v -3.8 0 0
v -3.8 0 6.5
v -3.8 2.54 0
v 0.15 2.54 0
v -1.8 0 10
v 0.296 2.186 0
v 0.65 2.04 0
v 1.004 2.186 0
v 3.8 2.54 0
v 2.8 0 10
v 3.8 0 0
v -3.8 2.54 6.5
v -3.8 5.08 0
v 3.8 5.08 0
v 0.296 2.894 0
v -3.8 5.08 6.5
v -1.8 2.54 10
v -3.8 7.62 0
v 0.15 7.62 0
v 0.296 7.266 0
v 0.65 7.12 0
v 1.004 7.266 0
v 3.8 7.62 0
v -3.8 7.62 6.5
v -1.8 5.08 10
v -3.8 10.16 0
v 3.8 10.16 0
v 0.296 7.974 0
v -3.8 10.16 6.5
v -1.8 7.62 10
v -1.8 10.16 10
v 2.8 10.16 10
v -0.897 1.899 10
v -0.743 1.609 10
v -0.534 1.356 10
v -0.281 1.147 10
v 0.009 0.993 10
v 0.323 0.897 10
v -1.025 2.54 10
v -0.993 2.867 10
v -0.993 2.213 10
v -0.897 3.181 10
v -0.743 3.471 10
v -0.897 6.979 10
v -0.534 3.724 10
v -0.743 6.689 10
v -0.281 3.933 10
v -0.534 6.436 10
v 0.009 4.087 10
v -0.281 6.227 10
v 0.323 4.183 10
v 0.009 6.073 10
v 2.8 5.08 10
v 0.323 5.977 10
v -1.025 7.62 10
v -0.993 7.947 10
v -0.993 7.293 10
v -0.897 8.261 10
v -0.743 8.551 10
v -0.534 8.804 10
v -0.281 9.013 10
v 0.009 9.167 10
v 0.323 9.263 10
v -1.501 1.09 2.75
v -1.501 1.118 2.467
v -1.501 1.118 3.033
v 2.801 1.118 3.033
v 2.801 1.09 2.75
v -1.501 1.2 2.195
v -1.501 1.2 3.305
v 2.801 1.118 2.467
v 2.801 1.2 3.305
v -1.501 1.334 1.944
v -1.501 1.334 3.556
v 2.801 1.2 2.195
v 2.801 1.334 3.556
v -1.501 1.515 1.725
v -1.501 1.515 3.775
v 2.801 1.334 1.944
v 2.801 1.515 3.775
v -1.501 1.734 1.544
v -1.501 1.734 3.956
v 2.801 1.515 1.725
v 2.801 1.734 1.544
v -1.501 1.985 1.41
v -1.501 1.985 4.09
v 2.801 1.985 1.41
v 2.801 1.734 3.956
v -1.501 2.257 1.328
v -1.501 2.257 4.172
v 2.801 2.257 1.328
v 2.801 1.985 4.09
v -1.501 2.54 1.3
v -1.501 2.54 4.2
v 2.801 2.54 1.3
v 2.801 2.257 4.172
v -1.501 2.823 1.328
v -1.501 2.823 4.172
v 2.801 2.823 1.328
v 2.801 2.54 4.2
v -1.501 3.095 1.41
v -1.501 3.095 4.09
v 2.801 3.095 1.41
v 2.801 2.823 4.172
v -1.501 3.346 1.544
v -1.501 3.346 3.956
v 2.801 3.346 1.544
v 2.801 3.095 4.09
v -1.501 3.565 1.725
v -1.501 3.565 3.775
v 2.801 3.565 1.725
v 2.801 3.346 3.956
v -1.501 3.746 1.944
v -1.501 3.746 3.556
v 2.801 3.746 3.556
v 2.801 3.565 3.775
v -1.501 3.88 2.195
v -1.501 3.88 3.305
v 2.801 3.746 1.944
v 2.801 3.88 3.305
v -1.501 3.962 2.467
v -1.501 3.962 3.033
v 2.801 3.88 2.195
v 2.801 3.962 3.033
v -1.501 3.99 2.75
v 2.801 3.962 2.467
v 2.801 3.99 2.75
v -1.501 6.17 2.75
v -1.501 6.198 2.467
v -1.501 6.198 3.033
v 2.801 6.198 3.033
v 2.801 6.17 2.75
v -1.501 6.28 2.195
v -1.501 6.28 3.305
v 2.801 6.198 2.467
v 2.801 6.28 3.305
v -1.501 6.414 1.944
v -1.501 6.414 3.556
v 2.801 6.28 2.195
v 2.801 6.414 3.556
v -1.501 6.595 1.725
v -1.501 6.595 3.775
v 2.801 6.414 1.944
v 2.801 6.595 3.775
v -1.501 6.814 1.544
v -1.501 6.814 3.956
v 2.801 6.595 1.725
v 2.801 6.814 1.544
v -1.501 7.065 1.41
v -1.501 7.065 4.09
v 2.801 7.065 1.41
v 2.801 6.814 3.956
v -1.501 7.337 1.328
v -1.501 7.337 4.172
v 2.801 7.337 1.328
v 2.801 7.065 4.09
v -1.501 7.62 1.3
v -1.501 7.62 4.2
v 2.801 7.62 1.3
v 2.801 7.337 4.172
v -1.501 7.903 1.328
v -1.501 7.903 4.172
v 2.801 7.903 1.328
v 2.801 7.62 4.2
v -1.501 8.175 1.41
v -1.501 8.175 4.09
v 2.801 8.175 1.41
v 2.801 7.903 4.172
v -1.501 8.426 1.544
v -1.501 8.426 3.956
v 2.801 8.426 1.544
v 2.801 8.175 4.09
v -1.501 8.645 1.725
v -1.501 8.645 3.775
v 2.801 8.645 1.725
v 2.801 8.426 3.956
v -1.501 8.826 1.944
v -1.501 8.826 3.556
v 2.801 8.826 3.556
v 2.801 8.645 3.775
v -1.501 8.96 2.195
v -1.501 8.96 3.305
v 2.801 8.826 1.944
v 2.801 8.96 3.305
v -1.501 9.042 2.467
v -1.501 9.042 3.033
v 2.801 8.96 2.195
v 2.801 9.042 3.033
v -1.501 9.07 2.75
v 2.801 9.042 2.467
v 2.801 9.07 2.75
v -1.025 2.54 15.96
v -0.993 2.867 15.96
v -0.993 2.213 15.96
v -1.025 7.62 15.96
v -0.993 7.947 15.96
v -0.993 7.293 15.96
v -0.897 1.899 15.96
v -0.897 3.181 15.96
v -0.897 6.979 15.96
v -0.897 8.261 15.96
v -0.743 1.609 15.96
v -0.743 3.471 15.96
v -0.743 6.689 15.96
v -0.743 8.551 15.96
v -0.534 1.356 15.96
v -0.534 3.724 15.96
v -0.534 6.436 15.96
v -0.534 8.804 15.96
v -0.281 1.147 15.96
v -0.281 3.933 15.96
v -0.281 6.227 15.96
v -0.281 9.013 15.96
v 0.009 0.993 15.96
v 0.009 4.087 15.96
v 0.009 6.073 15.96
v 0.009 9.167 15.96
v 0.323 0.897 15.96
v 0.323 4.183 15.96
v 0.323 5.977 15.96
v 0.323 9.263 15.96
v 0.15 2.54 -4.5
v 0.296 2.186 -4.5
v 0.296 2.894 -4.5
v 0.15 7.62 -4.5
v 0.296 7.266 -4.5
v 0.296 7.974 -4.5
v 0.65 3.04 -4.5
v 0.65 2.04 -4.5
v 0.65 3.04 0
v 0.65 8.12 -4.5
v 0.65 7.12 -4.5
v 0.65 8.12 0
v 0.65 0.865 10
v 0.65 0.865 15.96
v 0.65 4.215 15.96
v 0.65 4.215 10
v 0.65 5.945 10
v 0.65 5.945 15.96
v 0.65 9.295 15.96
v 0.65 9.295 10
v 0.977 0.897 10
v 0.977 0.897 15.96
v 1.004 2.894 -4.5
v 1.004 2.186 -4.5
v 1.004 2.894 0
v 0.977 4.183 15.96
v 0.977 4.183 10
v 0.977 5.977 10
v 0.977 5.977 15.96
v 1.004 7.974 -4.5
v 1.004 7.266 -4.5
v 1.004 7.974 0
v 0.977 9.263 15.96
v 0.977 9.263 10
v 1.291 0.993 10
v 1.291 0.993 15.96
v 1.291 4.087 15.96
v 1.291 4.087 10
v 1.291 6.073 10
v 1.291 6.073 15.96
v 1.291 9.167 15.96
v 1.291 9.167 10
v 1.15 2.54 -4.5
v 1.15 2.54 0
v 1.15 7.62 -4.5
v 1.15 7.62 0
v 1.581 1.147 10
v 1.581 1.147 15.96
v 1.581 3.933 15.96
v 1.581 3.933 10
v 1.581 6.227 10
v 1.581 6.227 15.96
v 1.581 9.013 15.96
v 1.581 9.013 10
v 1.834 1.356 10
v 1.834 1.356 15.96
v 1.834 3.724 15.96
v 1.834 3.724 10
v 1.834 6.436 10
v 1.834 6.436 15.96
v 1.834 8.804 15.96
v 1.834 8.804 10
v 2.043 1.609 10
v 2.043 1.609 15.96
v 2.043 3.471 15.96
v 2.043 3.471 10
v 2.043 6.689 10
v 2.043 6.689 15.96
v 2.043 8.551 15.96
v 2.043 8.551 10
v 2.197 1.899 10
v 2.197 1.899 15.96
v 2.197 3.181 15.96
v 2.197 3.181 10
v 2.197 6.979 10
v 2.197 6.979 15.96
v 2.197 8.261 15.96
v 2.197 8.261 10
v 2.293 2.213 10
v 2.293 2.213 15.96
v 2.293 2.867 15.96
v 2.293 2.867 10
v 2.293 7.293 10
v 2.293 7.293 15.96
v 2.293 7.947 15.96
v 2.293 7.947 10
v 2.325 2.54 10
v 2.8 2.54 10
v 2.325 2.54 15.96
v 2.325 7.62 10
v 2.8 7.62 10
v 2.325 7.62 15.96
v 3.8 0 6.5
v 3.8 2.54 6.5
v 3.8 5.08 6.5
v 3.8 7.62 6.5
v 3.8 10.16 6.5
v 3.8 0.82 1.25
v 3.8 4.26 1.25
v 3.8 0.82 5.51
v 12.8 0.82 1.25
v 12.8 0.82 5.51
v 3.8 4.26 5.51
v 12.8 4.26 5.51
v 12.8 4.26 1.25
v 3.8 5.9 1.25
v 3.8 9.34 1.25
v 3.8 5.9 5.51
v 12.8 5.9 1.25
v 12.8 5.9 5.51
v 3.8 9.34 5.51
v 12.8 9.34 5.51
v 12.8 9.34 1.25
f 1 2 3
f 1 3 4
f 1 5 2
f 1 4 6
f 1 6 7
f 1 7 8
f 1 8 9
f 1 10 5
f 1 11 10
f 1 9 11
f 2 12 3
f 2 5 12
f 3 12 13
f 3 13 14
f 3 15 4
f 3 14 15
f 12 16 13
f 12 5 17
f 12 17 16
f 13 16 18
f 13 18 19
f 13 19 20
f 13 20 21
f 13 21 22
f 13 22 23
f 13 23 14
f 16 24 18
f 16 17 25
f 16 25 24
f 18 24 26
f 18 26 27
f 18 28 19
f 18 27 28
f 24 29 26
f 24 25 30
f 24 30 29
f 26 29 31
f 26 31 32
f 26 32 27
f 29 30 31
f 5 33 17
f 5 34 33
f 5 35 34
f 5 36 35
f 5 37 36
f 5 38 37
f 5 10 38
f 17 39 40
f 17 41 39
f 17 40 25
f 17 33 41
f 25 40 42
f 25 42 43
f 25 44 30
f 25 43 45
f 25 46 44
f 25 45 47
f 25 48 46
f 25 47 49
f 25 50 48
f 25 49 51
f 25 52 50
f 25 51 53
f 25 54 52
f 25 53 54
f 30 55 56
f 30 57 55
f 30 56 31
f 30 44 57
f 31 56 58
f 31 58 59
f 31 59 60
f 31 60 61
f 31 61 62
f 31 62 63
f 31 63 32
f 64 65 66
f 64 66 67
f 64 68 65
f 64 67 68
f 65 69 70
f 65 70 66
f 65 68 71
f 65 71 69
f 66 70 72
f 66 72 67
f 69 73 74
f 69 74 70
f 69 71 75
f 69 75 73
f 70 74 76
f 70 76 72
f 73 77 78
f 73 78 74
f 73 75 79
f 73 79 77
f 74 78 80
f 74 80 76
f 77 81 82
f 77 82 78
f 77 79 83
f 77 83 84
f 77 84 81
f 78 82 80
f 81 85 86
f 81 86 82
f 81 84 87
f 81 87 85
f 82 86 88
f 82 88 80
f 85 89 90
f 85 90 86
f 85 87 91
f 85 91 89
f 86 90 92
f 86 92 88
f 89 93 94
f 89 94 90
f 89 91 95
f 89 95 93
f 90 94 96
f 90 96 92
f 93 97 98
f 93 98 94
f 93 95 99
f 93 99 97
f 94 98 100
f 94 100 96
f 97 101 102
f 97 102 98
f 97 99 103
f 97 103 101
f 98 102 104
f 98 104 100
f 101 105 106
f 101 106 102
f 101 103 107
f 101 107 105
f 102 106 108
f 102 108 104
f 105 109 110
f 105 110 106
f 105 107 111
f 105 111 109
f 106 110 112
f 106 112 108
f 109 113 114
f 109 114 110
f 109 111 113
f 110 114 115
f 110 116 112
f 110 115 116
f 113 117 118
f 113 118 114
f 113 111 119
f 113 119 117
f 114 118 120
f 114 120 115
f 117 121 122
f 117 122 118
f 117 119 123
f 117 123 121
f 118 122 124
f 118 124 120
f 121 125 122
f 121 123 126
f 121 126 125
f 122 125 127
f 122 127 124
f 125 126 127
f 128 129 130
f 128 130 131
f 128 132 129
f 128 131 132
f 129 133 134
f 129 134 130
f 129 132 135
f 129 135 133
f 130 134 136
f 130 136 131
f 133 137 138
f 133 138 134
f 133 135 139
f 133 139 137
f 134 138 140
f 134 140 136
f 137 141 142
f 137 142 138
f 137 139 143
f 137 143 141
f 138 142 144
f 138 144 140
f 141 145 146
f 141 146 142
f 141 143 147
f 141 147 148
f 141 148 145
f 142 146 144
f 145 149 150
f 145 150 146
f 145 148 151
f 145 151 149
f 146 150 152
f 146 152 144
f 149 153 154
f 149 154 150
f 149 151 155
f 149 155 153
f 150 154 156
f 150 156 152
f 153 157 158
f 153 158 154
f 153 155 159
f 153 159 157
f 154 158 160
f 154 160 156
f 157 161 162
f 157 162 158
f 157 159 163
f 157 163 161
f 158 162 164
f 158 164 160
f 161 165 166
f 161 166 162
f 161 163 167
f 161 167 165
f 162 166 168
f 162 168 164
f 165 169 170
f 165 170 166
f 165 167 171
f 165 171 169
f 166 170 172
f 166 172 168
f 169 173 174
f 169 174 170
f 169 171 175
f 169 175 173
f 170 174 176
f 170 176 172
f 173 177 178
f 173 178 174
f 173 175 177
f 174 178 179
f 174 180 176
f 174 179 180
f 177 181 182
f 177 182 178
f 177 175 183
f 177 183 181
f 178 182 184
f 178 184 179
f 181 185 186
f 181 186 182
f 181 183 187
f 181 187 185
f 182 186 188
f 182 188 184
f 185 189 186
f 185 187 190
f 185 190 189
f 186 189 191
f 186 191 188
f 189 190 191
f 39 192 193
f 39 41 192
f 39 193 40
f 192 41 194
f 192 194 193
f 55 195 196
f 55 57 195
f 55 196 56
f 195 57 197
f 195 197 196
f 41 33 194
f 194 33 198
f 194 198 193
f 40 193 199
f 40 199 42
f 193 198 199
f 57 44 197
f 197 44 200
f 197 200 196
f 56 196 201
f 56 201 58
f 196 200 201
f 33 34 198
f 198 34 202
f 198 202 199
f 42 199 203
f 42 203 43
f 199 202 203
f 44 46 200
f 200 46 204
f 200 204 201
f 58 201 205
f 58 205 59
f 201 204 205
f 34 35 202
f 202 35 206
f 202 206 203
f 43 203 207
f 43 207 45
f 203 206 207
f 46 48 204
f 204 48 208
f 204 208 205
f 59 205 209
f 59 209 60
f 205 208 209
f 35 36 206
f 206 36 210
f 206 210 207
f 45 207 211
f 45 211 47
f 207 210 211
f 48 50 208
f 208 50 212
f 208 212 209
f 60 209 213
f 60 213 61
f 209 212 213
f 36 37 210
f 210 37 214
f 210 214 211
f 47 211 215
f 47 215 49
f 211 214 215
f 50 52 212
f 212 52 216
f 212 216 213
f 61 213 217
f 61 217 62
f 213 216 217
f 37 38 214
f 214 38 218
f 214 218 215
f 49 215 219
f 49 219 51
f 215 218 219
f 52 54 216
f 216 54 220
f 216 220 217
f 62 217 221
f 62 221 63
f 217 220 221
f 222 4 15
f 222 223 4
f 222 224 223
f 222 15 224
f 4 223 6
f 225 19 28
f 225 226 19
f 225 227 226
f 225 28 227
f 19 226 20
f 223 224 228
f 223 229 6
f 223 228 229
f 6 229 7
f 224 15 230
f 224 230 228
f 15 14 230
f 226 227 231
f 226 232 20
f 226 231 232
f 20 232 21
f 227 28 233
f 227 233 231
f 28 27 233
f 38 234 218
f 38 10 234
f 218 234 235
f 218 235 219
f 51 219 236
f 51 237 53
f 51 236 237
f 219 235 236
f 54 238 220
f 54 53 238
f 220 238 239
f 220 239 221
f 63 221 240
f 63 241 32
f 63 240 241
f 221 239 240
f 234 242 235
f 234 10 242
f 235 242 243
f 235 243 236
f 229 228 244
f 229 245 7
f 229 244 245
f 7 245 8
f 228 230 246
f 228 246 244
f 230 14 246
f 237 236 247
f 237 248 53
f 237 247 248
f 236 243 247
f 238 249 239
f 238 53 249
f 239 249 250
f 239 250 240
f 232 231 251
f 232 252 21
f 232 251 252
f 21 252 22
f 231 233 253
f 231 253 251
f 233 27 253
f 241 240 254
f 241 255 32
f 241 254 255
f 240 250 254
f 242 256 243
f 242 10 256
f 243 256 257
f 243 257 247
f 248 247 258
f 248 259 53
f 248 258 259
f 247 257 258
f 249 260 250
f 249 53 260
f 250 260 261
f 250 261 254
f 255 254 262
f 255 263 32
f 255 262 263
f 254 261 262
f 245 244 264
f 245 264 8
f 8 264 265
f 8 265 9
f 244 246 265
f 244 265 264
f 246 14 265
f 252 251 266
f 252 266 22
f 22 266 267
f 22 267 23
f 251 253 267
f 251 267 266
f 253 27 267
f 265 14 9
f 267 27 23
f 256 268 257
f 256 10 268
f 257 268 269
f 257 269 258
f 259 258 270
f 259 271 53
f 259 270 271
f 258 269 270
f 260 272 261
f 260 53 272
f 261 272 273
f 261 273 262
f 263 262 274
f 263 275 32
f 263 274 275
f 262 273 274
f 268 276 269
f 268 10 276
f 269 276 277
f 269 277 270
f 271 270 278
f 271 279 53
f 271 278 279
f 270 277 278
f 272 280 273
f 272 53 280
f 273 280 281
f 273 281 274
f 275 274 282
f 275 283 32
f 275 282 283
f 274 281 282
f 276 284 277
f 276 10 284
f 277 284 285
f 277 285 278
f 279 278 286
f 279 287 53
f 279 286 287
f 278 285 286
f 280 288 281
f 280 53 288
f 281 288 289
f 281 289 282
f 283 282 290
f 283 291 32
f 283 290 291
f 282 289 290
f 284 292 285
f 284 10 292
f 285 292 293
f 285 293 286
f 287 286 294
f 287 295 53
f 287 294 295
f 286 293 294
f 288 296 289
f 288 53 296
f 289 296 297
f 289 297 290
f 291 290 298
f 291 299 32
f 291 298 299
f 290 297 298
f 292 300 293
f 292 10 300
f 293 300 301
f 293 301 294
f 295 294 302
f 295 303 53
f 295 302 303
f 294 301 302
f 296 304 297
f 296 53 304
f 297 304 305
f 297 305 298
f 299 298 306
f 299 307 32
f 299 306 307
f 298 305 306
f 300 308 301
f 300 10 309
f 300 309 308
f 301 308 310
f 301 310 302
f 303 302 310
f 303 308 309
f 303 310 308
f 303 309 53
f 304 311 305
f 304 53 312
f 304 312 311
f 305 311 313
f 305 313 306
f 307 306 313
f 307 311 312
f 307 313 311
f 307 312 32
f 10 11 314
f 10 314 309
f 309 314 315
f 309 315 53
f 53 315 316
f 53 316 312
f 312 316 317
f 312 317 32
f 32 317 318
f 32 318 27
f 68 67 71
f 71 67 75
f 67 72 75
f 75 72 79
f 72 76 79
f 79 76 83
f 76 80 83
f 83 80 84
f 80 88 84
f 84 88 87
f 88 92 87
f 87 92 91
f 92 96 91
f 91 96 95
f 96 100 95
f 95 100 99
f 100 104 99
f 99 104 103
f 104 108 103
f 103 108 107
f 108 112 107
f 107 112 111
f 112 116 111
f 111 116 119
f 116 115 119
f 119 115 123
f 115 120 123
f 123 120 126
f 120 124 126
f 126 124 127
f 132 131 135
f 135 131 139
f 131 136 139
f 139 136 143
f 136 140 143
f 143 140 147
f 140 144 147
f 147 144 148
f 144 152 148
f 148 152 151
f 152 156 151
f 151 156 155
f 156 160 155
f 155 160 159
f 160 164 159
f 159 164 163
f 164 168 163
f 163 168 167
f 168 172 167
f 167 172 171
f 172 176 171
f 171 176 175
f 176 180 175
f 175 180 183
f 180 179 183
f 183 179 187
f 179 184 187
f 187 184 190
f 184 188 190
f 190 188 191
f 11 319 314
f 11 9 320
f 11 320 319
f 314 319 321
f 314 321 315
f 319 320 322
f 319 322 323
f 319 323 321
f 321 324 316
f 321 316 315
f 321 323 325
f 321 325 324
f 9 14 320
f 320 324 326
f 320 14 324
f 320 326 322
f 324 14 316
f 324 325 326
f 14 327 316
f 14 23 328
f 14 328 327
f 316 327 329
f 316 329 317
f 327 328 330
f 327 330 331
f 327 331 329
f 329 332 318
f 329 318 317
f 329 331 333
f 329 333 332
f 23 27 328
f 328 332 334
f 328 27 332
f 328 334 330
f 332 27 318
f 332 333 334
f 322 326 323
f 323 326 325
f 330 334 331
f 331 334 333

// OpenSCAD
// Start: lazy_union
default_5_default_5();
// End: lazy_union

// Modules.

// 'PartMaterial undef-default - default 5.0'
module default_5_default_5() {
  // 'None : _combine_solids_and_holes'
  union() {
    // '_combine_solids_and_holes'
    difference() {
      // 'default : _combine_solids_and_holes'
      union() {
        // 'body : _combine_solids_and_holes'
        union() {
          // 'terminal'
          multmatrix(m=[[1.0, 0.0, 0.0, 0.0], [0.0, 0.0, -1.0, 10.16], [0.0, 1.0, 0.0, 0.0], [0.0, 0.0, 0.0, 1.0]]) {
            // 'terminal : _combine_solids_and_holes'
            union() {
              // 'terminal'
              linear_extrude(height=10.16, twist=0.0, slices=4, scale=[1.0, 1.0]) {
                polygon(points=[[0.0, 0.0], [-3.8, 0.0], [-3.8, 6.5], [-1.7999999999999998, 10.0], [2.8, 10.0], [3.8, 6.5], [3.8, 0.0]]);
              }
            }
          }
        }
        // 'block'
        multmatrix(m=[[-1.0, 0.0, 0.0, 2.8], [0.0, -1.0, 0.0, 4.71], [0.0, 0.0, 1.0, 0.8], [0.0, 0.0, 0.0, 1.0]]) {
          // 'block : _combine_solids_and_holes'
          union() {
            // 'block'
            cube(size=[4.3, 4.34, 5.16]);
          }
        }
        // 'pin'
        multmatrix(m=[[-1.0, 0.0, 0.0, 0.6499999999999999], [0.0, -1.0, 0.0, 2.54], [0.0, 0.0, 1.0, -4.5], [0.0, 0.0, 0.0, 1.0]]) {
          // 'pin : _combine_solids_and_holes'
          union() {
            // 'pin'
            cylinder(h=5.3, r1=0.5, r2=0.5, center=false, $fn=8);
          }
        }
        // 'screw_access'
        multmatrix(m=[[-1.0, 0.0, 0.0, 0.6499999999999999], [0.0, 1.0, 0.0, 2.54], [0.0, 0.0, -1.0, 15.96], [0.0, 0.0, 0.0, 1.0]]) {
          // 'screw_access : _combine_solids_and_holes'
          union() {
            // 'screw_access'
            cylinder(h=10.0, r1=1.675, r2=1.675, center=false, $fn=32);
          }
        }
        // 'block_access'
        multmatrix(m=[[1.0, 0.0, 0.0, 2.8], [0.0, 1.0, 0.0, 0.8200000000000001], [0.0, 0.0, 1.0, 1.25], [0.0, 0.0, 0.0, 1.0]]) {
          // 'block_access : _combine_solids_and_holes'
          union() {
            // 'block_access'
            cube(size=[10.0, 3.44, 4.26]);
          }
        }
        // ('terminal', 2)
        multmatrix(m=[[1.0, 0.0, 0.0, 0.0], [0.0, 1.0, 0.0, 5.08], [0.0, 0.0, 1.0, 0.0], [0.0, 0.0, 0.0, 1.0]]) {
          // 'block'
          multmatrix(m=[[-1.0, 0.0, 0.0, 2.8], [0.0, -1.0, 0.0, 4.71], [0.0, 0.0, 1.0, 0.8], [0.0, 0.0, 0.0, 1.0]]) {
            // 'block : _combine_solids_and_holes'
            union() {
              // 'block'
              cube(size=[4.3, 4.34, 5.16]);
            }
          }
          // 'pin'
          multmatrix(m=[[-1.0, 0.0, 0.0, 0.6499999999999999], [0.0, -1.0, 0.0, 2.54], [0.0, 0.0, 1.0, -4.5], [0.0, 0.0, 0.0, 1.0]]) {
            // 'pin : _combine_solids_and_holes'
            union() {
              // 'pin'
              cylinder(h=5.3, r1=0.5, r2=0.5, center=false, $fn=8);
            }
          }
          // 'screw_access'
          multmatrix(m=[[-1.0, 0.0, 0.0, 0.6499999999999999], [0.0, 1.0, 0.0, 2.54], [0.0, 0.0, -1.0, 15.96], [0.0, 0.0, 0.0, 1.0]]) {
            // 'screw_access : _combine_solids_and_holes'
            union() {
              // 'screw_access'
              cylinder(h=10.0, r1=1.675, r2=1.675, center=false, $fn=32);
            }
          }
          // 'block_access'
          multmatrix(m=[[1.0, 0.0, 0.0, 2.8], [0.0, 1.0, 0.0, 0.8200000000000001], [0.0, 0.0, 1.0, 1.25], [0.0, 0.0, 0.0, 1.0]]) {
            // 'block_access : _combine_solids_and_holes'
            union() {
              // 'block_access'
              cube(size=[10.0, 3.44, 4.26]);
            }
          }
        }
      }
      // ('terminal', 1)
      multmatrix(m=[[0.0, 0.0, -1.0, 2.8009999999999997], [0.0, -1.0, 0.0, 2.54], [-1.0, 0.0, 0.0, 2.75], [0.0, 0.0, 0.0, 1.0]]) {
        // 'term_hole : _combine_solids_and_holes'
        union() {
          // 'term_hole'
          cylinder(h=4.302, r1=1.45, r2=1.45, center=false, $fn=32);
        }
      }
      // ('terminal', 2)
      multmatrix(m=[[1.0, 0.0, 0.0, 0.0], [0.0, 1.0, 0.0, 5.08], [0.0, 0.0, 1.0, 0.0], [0.0, 0.0, 0.0, 1.0]]) {
        // ('terminal', 2)
        multmatrix(m=[[0.0, 0.0, -1.0, 2.8009999999999997], [0.0, -1.0, 0.0, 2.54], [-1.0, 0.0, 0.0, 2.75], [0.0, 0.0, 0.0, 1.0]]) {
          // 'term_hole : _combine_solids_and_holes'
          union() {
            // 'term_hole'
            cylinder(h=4.302, r1=1.45, r2=1.45, center=false, $fn=32);
          }
        }
      }
    }
  }
} // end module default_5_default_5
